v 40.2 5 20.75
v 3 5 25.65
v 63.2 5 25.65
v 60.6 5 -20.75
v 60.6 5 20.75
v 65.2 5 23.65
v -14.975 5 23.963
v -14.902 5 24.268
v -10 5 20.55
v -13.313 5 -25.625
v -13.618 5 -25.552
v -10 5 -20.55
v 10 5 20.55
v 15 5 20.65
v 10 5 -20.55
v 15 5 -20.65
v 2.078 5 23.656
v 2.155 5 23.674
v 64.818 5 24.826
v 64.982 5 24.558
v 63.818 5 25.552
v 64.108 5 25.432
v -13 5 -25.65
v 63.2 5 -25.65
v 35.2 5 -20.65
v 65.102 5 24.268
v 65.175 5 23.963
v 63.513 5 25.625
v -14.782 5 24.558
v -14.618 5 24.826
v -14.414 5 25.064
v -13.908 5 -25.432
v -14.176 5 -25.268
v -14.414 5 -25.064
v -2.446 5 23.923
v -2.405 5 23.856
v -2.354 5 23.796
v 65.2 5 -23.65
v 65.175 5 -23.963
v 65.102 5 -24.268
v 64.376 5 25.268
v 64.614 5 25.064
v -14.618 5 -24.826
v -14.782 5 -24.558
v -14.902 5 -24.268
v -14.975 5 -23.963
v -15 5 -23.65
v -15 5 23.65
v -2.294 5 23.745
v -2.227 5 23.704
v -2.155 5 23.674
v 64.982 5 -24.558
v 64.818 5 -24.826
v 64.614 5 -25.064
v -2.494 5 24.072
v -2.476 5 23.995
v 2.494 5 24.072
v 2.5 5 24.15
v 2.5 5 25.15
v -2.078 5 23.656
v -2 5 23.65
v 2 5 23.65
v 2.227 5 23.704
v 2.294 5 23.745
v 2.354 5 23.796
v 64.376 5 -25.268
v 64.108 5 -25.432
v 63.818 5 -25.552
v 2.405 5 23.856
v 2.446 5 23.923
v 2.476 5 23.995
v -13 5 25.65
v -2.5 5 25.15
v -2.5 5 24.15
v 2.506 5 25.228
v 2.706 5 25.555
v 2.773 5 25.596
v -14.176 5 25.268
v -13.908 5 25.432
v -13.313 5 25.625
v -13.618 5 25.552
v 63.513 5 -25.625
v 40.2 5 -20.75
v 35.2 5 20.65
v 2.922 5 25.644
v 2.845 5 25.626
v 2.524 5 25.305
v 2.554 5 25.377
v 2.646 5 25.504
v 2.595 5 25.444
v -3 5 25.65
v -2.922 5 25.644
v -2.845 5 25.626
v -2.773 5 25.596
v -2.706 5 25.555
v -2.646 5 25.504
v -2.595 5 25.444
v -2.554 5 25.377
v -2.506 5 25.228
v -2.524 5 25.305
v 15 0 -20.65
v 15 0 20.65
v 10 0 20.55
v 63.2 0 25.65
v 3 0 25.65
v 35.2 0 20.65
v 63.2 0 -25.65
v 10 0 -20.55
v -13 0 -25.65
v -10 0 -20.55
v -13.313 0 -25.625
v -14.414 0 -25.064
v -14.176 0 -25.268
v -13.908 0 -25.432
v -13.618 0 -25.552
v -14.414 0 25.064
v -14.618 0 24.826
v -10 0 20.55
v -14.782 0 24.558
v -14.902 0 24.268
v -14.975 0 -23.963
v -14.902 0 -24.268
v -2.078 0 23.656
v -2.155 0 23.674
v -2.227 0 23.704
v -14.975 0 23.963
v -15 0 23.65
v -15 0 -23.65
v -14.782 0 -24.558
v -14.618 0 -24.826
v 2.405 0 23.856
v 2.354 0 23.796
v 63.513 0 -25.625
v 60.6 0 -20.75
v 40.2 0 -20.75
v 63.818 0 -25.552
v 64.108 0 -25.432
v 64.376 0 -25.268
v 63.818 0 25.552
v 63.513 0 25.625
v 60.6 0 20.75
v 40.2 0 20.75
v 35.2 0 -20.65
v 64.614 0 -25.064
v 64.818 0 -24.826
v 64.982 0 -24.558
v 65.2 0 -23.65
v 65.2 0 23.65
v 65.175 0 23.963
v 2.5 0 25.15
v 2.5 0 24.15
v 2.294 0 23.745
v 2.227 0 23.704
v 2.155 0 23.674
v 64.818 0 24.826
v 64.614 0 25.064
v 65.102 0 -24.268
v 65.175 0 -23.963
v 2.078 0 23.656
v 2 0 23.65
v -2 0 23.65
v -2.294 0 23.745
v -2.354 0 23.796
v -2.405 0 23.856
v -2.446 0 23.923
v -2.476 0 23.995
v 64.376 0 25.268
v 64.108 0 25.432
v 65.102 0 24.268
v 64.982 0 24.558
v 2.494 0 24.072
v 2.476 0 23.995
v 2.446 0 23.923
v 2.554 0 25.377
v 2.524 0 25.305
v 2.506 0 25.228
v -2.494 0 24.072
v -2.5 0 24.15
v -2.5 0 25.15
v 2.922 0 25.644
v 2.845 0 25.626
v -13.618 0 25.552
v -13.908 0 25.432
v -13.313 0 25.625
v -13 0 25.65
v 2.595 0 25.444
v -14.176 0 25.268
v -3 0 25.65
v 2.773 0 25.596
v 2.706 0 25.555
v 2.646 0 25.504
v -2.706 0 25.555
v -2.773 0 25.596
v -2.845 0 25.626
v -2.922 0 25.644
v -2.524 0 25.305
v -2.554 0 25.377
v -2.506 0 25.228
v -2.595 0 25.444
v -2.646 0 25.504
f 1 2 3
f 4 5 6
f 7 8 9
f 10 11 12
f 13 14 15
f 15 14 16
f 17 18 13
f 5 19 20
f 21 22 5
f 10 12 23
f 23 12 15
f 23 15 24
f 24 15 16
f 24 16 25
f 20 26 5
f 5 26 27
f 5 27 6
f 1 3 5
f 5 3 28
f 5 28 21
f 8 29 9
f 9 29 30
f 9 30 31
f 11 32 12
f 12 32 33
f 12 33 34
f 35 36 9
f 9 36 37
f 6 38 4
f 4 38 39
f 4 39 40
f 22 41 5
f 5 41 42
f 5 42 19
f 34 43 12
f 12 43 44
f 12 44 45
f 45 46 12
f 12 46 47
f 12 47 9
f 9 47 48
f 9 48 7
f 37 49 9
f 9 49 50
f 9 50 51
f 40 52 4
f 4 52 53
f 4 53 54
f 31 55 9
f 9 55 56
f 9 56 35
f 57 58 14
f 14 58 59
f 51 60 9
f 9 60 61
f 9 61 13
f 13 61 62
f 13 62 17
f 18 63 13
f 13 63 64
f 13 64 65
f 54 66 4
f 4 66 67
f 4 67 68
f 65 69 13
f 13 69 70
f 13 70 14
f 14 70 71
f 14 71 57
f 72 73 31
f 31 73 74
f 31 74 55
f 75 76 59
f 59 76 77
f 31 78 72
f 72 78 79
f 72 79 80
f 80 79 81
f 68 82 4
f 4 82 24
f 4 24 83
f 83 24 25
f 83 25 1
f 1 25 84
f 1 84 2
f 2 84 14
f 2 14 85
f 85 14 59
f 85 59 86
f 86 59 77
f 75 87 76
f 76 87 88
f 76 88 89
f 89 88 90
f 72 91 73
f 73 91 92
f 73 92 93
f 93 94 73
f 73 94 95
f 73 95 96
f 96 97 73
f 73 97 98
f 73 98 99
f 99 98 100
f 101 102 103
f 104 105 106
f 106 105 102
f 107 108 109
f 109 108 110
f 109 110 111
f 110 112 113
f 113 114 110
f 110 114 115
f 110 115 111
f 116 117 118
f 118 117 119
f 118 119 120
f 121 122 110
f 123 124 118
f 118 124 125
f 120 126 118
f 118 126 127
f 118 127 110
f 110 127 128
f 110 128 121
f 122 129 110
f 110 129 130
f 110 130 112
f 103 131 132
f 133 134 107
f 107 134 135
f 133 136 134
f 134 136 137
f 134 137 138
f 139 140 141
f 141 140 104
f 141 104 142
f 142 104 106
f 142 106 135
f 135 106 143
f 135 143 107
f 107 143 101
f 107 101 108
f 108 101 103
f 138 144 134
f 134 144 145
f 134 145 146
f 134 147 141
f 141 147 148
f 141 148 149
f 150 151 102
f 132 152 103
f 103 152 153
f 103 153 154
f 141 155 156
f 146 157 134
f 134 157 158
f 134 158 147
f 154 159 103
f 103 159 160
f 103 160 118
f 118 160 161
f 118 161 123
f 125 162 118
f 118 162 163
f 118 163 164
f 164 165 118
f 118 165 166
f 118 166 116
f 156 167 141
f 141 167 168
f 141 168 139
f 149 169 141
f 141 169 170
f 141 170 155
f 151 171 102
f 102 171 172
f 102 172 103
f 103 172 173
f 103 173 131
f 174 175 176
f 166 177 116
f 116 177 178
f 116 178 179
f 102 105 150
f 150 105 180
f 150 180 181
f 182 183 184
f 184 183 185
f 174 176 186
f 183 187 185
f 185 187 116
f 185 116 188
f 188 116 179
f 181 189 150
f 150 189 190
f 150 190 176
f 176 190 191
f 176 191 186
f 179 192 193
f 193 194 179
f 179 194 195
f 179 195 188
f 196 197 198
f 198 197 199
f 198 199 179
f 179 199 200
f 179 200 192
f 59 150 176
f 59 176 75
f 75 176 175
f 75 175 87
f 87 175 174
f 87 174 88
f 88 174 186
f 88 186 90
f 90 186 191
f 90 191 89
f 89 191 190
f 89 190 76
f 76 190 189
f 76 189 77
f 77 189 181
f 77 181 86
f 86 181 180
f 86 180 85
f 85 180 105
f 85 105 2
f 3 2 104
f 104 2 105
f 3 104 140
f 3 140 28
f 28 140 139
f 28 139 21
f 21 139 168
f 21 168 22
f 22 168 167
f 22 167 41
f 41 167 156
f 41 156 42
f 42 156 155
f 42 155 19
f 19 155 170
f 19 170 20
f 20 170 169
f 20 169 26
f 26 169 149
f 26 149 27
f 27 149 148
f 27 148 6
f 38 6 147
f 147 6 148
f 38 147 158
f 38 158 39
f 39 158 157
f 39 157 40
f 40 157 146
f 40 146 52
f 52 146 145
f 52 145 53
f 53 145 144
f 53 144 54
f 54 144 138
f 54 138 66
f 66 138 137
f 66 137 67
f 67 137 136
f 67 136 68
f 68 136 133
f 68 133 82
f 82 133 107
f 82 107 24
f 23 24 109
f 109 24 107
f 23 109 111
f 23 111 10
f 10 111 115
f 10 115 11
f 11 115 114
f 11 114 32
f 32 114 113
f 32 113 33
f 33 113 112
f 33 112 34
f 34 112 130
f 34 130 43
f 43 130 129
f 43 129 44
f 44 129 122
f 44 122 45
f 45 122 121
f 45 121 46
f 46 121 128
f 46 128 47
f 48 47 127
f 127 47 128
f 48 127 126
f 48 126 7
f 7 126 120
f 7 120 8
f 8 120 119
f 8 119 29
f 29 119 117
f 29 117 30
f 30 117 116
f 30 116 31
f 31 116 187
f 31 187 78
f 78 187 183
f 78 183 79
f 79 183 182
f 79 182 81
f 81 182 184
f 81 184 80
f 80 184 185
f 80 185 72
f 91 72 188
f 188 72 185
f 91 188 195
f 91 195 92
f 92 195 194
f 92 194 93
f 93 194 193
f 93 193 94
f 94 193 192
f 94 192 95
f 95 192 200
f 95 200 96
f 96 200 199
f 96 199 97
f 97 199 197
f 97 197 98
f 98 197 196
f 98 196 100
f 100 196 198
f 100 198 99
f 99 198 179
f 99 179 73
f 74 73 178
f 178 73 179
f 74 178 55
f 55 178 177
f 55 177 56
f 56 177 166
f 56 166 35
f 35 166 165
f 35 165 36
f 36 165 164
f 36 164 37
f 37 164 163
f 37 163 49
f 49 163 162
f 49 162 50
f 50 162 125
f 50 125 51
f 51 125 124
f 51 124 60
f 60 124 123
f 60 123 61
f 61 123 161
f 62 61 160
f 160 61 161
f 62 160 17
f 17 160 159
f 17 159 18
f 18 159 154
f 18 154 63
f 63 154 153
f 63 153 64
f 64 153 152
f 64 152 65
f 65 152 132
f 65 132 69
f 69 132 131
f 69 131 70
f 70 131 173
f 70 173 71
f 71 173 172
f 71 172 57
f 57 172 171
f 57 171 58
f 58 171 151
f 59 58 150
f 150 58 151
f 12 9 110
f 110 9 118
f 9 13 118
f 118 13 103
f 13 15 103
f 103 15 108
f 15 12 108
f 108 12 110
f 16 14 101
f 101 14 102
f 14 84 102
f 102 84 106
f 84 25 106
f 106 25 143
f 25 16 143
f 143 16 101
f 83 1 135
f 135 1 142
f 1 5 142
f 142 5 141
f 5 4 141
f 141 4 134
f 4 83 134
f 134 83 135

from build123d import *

# Parameters (mm, degrees)
SKETCH1_W           = 20
SKETCH1_H           = 41.1
SKETCH1_W_2         = 20.2
SKETCH1_H_2         = 41.3
SKETCH1_W_3         = 20.4
SKETCH1_H_3         = 41.5
BOSS_EXTRUDE1_DEPTH = 5


with BuildPart() as part:
    # Sketch1 → Boss-Extrude1 (new body)
    with BuildSketch(Plane(origin=(0, 0, 0), x_dir=(1, 0, 0), z_dir=(0, 1, 0))):
        with BuildLine():
            Line((-2.5, -25.15), (-2.5, -24.15))
            ThreePointArc((-2.5, -24.15), (-2.353553391, -23.796446609), (-2, -23.65))
            Line((-2, -23.65), (2, -23.65))
            ThreePointArc((2, -23.65), (2.353553391, -23.796446609), (2.5, -24.15))
            Line((2.5, -24.15), (2.5, -25.15))
            ThreePointArc((2.5, -25.15), (2.646446609, -25.503553391), (3, -25.65))
            Line((3, -25.65), (63.2, -25.65))
            ThreePointArc((63.2, -25.65), (64.614213562, -25.064213562), (65.2, -23.65))
            Line((65.2, -23.65), (65.2, 23.65))
            ThreePointArc((65.2, 23.65), (64.614213562, 25.064213562), (63.2, 25.65))
            Line((63.2, 25.65), (-13, 25.65))
            ThreePointArc((-13, 25.65), (-14.414213562, 25.064213562), (-15, 23.65))
            Line((-15, 23.65), (-15, -23.65))
            ThreePointArc((-15, -23.65), (-14.414213562, -25.064213562), (-13, -25.65))
            Line((-13, -25.65), (-3, -25.65))
            ThreePointArc((-3, -25.65), (-2.646446609, -25.503553391), (-2.5, -25.15))
        make_face()
        Rectangle(SKETCH1_W, SKETCH1_H, mode=Mode.SUBTRACT)
        with Locations((25.1, 0)):
            Rectangle(SKETCH1_W_2, SKETCH1_H_2, mode=Mode.SUBTRACT)
        with Locations((50.4, 0)):
            Rectangle(SKETCH1_W_3, SKETCH1_H_3, mode=Mode.SUBTRACT)
    extrude(amount=BOSS_EXTRUDE1_DEPTH)


solid = part.part
